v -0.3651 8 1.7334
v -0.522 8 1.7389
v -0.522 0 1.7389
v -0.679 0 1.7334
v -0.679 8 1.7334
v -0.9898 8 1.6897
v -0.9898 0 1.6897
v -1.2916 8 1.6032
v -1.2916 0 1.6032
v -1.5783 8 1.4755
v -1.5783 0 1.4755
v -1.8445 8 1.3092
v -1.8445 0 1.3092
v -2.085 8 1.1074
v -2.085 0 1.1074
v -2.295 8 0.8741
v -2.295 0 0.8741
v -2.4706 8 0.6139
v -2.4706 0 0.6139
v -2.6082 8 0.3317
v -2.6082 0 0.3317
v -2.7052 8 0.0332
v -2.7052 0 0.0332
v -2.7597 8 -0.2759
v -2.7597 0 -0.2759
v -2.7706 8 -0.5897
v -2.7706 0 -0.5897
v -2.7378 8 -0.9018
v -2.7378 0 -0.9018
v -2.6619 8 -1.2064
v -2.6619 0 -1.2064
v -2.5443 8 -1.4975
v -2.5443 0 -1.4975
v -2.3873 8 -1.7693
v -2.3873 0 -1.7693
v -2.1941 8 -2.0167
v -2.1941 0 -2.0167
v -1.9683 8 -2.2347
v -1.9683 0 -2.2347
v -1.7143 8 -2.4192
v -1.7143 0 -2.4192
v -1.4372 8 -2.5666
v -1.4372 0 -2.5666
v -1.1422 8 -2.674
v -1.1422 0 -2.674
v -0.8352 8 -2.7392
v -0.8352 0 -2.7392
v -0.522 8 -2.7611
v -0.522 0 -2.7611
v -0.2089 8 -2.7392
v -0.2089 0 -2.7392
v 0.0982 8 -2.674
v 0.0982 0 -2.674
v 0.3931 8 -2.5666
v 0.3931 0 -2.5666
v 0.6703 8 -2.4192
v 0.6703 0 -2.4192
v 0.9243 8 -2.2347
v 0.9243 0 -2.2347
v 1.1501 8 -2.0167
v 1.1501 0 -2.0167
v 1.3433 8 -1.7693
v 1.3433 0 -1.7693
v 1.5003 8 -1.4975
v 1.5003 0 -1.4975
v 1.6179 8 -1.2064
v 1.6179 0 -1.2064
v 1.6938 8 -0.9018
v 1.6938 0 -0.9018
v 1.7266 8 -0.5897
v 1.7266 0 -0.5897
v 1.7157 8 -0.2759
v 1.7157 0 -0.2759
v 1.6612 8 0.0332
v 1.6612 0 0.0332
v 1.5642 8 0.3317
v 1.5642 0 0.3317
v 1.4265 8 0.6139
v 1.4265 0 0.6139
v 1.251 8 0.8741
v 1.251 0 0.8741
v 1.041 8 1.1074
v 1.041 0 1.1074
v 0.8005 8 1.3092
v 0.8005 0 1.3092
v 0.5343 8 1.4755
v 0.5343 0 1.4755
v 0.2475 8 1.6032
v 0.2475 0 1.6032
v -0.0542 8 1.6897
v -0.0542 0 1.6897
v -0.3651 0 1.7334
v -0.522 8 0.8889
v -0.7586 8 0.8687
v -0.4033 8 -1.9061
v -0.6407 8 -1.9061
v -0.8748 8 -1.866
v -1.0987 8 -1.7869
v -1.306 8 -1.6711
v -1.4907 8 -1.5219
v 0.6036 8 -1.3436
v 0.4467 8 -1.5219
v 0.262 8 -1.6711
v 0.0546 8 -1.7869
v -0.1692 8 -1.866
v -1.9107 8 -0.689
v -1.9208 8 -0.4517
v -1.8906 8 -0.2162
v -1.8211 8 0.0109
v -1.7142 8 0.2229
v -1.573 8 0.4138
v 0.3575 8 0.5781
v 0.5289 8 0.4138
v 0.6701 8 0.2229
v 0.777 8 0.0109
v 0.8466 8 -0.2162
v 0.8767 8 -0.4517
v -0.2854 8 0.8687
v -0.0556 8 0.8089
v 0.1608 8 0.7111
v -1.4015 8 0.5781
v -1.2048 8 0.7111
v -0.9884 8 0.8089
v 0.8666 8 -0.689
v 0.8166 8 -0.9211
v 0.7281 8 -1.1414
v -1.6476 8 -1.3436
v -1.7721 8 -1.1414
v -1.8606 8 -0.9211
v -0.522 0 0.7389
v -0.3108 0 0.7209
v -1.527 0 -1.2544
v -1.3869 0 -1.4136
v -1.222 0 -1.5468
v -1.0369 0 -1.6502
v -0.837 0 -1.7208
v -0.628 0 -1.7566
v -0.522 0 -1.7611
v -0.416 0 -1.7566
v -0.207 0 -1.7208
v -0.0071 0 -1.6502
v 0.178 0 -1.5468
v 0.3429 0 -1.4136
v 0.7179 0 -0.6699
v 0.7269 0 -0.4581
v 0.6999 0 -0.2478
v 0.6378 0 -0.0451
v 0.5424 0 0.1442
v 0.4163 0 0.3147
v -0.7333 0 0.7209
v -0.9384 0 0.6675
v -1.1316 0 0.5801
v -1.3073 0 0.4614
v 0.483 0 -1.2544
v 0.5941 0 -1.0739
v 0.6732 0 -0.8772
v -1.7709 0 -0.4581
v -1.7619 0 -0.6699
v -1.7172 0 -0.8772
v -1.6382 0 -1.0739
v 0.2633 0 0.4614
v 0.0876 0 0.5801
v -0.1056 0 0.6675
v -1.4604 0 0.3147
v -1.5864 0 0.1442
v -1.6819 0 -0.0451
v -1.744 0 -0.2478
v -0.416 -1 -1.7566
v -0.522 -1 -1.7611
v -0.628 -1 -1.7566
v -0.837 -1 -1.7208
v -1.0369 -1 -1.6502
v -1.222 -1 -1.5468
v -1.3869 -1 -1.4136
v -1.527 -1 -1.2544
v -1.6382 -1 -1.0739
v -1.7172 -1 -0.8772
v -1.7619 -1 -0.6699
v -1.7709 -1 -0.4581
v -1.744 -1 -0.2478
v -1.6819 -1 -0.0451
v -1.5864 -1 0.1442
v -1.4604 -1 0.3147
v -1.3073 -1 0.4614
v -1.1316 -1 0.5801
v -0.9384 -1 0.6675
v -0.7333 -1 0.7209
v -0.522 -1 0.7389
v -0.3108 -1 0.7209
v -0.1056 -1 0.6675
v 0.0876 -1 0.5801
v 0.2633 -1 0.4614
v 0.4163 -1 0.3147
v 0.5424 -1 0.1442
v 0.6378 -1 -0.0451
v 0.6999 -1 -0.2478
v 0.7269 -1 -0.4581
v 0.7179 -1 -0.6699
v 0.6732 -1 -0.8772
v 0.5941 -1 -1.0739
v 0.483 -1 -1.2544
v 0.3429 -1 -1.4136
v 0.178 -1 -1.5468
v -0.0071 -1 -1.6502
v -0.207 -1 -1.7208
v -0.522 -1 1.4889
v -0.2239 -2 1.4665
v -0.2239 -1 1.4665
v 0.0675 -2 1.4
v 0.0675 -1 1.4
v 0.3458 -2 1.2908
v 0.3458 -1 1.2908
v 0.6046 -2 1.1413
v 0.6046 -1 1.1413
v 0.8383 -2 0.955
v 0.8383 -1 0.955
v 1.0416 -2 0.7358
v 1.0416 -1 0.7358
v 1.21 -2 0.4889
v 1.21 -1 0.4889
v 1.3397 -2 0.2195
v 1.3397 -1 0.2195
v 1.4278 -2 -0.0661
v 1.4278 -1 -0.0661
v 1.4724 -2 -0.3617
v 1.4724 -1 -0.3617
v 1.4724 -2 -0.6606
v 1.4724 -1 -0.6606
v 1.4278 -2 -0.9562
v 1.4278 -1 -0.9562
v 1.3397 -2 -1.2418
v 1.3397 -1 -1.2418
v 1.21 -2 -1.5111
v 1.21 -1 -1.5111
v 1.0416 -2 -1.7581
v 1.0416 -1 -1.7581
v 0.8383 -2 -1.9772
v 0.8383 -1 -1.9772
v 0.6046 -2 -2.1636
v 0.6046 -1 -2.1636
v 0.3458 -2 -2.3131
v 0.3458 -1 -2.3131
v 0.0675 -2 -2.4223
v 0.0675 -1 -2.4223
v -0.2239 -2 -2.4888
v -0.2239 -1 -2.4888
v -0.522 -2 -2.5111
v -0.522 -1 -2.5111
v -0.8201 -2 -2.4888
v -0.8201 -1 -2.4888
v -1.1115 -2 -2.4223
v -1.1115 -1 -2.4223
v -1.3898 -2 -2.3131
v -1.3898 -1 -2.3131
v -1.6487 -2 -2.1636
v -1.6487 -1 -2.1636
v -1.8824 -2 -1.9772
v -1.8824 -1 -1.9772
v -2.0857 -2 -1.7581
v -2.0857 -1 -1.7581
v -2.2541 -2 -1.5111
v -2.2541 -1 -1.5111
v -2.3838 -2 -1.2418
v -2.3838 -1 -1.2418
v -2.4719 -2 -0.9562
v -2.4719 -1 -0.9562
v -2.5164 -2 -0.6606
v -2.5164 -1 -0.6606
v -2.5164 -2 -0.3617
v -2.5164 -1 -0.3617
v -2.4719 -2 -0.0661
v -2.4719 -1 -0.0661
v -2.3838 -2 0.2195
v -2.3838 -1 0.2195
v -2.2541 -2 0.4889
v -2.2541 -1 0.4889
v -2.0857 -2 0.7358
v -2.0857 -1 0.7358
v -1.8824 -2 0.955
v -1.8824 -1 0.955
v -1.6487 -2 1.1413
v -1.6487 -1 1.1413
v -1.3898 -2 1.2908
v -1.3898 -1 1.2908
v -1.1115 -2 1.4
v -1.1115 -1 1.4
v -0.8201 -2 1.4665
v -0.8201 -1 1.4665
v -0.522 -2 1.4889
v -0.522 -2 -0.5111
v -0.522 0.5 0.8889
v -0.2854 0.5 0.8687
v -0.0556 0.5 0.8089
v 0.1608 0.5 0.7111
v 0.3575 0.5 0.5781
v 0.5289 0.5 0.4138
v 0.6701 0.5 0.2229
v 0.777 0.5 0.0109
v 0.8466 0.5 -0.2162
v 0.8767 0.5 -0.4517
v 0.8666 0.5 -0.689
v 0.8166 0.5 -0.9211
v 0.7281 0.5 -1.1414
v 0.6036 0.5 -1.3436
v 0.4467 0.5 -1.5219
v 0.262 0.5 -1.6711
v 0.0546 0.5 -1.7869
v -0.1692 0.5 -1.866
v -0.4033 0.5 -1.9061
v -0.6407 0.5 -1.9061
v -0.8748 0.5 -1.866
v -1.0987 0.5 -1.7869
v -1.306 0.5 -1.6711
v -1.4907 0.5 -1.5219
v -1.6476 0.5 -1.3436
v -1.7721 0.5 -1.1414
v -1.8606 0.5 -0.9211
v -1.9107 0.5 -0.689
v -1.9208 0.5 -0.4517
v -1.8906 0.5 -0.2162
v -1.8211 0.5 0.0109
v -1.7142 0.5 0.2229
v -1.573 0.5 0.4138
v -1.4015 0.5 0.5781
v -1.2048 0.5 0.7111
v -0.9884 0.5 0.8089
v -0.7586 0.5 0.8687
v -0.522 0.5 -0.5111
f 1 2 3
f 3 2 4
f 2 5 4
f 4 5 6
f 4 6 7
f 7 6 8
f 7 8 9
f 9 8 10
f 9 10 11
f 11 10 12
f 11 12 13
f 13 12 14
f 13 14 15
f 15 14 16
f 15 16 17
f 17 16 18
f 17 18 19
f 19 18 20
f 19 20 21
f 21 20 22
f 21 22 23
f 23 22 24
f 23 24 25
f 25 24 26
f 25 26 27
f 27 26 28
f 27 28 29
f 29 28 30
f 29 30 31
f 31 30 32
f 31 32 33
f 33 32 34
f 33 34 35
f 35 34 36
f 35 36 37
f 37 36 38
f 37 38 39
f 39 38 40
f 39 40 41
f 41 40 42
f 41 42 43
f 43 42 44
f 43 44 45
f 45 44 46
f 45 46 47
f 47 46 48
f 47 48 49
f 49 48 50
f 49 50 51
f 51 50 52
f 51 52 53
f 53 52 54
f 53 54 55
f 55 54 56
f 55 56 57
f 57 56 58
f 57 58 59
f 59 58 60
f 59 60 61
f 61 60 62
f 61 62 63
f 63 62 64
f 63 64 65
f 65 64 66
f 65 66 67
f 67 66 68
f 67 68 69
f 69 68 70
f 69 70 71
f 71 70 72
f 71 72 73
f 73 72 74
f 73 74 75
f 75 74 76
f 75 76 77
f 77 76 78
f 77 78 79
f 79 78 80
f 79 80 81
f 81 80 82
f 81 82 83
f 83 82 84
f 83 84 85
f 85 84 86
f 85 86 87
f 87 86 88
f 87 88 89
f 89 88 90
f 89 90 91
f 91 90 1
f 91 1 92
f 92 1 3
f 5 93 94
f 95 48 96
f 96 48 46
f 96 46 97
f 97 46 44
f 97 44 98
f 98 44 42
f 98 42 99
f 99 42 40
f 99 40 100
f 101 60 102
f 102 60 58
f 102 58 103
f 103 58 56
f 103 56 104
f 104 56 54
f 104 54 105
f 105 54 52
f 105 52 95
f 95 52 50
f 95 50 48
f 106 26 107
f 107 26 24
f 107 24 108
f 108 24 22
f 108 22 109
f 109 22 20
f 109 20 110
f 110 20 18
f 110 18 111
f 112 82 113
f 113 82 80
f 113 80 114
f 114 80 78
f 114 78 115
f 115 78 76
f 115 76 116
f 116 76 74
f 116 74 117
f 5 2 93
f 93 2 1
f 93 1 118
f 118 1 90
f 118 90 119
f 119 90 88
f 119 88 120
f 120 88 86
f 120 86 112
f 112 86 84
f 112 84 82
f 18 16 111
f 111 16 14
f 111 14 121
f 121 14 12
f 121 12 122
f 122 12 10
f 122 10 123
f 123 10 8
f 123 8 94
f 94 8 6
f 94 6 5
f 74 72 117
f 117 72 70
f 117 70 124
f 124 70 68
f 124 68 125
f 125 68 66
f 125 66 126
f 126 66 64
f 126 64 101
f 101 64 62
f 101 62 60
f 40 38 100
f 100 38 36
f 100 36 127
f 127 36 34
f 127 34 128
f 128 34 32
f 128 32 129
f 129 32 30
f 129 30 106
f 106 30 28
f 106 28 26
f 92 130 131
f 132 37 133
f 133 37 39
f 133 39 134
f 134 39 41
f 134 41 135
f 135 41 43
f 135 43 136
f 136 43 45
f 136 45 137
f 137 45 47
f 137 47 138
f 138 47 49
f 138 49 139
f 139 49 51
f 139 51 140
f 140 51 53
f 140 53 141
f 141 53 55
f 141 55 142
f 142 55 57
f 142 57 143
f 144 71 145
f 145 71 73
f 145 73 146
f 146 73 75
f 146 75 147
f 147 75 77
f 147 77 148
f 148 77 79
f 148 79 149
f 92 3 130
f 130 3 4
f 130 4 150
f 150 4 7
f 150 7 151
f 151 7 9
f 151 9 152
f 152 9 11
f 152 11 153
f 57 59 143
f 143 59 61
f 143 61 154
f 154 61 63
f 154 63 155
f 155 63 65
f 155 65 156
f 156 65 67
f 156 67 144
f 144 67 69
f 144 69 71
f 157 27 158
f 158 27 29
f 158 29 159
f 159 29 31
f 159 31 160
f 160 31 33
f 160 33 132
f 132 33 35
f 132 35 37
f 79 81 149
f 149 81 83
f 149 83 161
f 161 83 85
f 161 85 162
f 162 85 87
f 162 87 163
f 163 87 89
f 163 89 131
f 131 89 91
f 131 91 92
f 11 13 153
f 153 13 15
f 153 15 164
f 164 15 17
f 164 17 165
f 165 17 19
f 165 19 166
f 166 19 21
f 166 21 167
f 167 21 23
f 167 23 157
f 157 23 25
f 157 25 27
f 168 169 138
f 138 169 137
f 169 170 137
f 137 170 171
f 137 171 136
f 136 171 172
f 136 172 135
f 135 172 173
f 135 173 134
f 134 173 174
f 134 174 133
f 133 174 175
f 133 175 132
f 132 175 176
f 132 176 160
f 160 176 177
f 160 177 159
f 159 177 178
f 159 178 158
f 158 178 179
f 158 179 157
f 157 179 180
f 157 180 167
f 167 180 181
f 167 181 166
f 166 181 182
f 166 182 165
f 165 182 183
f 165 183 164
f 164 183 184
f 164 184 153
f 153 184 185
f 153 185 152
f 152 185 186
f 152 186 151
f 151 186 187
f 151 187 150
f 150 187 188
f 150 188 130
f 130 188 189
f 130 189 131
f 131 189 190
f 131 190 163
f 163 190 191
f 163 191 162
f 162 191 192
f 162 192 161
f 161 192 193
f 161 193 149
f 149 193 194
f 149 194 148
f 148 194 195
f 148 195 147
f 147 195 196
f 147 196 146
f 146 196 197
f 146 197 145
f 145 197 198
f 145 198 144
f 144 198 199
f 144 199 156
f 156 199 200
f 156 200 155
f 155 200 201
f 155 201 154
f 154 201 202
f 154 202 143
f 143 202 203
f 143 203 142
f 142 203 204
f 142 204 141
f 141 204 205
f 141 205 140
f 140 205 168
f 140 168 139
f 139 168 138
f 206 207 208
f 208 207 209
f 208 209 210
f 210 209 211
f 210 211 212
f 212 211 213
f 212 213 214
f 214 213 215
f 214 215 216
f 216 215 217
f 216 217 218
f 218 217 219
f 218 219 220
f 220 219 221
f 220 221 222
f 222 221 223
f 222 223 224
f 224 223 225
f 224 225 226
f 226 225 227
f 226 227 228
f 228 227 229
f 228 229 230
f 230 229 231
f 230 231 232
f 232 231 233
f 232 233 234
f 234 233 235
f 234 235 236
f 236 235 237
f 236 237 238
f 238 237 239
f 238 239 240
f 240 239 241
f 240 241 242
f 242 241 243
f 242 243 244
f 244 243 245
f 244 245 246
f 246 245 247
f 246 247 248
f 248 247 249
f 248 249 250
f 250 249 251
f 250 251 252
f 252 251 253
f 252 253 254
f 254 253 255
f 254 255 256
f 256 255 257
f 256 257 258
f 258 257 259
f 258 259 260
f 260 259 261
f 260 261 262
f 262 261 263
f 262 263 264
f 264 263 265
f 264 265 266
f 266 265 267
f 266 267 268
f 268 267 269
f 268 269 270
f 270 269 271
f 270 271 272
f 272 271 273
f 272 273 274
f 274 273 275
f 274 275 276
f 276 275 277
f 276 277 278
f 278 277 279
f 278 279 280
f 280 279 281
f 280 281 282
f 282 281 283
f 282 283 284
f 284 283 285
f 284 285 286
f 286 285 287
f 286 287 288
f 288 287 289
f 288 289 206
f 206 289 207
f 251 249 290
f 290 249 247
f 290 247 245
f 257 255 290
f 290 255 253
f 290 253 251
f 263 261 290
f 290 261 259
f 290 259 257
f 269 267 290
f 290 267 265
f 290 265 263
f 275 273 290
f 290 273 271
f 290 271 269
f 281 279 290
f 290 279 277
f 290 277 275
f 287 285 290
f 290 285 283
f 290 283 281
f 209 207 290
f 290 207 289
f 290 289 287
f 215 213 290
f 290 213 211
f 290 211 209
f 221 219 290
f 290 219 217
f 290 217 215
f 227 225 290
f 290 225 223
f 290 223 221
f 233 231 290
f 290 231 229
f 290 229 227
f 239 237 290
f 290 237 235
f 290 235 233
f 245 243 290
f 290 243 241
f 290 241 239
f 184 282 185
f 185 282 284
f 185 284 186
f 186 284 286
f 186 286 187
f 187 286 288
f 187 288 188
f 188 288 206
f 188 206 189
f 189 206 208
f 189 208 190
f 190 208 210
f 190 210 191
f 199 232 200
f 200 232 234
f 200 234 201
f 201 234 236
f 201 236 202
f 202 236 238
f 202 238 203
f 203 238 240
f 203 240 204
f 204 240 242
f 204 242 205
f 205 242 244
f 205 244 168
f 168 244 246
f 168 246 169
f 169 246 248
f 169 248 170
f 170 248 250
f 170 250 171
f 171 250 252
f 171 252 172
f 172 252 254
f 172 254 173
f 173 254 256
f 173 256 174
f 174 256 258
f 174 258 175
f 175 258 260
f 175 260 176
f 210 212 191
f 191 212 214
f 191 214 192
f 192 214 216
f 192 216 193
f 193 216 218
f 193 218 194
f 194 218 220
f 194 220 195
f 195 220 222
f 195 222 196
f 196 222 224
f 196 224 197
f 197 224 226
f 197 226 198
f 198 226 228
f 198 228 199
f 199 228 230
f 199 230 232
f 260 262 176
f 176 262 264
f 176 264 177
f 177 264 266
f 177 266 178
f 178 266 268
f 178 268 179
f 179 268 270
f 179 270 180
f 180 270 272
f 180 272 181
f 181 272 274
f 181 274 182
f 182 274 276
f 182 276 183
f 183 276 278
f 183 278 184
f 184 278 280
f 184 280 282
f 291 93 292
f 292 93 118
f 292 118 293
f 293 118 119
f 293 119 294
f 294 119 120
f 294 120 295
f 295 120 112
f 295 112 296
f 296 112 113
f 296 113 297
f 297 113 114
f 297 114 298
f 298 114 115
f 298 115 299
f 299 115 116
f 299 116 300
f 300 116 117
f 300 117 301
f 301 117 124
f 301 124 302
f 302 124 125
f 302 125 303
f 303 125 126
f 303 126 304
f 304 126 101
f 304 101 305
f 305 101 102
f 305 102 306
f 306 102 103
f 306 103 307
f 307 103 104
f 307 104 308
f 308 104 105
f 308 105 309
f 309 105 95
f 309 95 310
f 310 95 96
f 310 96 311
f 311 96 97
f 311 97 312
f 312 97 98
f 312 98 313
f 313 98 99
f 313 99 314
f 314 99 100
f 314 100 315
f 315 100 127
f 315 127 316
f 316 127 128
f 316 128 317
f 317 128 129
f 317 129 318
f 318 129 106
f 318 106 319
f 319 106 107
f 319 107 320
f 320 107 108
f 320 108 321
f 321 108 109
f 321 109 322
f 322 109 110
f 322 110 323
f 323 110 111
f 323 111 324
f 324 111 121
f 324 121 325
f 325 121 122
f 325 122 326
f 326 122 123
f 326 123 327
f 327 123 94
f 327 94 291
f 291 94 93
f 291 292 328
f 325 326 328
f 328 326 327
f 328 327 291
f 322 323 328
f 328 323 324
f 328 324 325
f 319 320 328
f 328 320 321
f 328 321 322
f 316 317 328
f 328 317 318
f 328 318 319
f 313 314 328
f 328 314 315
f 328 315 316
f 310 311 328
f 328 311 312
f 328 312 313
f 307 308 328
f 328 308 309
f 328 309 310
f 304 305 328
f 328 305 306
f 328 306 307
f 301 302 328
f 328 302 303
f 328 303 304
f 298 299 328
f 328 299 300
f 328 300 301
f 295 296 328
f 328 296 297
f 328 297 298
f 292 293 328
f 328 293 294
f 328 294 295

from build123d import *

# Parameters (mm, degrees)
SKETCH1_R           = 2.25
BOSS_EXTRUDE1_DEPTH = 8
SKETCH1_3_R         = 1.375
BOSS_EXTRUDE2_DEPTH = 1
SKETCH5_R           = 1.25
BOSS_EXTRUDE3_DEPTH = 1
SKETCH6_R           = 2
BOSS_EXTRUDE4_DEPTH = 1
SKETCH12_R          = 1.4
CUT_EXTRUDE1_DEPTH  = 7.5


with BuildPart() as part:
    # Sketch1 → Boss-Extrude1 (new body)
    with BuildSketch(Plane(origin=(0, 0, 0), x_dir=(1, 0, 0), z_dir=(0, 1, 0))):
        with Locations((-0.522013312, 0.511138034)):
            Circle(SKETCH1_R)
    extrude(amount=BOSS_EXTRUDE1_DEPTH)

    # Sketch1<3> → Boss-Extrude2 (add)
    with BuildSketch(Plane(origin=(0, 0, 0), x_dir=(1, 0, 0), z_dir=(0, 1, 0))):
        with Locations((-0.522013312, 0.511138034)):
            Circle(SKETCH1_3_R)
    extrude(amount=BOSS_EXTRUDE2_DEPTH)

    # Sketch5 → Boss-Extrude3 (add)
    with BuildSketch(Plane.XZ):
        with Locations((-0.522013312, -0.511138034)):
            Circle(SKETCH5_R)
    extrude(amount=BOSS_EXTRUDE3_DEPTH)

    # Sketch6 → Boss-Extrude4 (add)
    with BuildSketch(Plane.XZ.offset(1)):
        with Locations((-0.522013312, -0.511138034)):
            Circle(SKETCH6_R)
    extrude(amount=BOSS_EXTRUDE4_DEPTH)

    # Sketch12 → Cut-Extrude1 (cut)
    with BuildSketch(Plane(origin=(0, 8, 0), x_dir=(1, 0, 0), z_dir=(0, 1, 0))):
        with Locations((-0.522013312, 0.511138034)):
            Circle(SKETCH12_R)
    extrude(amount=-CUT_EXTRUDE1_DEPTH, mode=Mode.SUBTRACT)


solid = part.part
